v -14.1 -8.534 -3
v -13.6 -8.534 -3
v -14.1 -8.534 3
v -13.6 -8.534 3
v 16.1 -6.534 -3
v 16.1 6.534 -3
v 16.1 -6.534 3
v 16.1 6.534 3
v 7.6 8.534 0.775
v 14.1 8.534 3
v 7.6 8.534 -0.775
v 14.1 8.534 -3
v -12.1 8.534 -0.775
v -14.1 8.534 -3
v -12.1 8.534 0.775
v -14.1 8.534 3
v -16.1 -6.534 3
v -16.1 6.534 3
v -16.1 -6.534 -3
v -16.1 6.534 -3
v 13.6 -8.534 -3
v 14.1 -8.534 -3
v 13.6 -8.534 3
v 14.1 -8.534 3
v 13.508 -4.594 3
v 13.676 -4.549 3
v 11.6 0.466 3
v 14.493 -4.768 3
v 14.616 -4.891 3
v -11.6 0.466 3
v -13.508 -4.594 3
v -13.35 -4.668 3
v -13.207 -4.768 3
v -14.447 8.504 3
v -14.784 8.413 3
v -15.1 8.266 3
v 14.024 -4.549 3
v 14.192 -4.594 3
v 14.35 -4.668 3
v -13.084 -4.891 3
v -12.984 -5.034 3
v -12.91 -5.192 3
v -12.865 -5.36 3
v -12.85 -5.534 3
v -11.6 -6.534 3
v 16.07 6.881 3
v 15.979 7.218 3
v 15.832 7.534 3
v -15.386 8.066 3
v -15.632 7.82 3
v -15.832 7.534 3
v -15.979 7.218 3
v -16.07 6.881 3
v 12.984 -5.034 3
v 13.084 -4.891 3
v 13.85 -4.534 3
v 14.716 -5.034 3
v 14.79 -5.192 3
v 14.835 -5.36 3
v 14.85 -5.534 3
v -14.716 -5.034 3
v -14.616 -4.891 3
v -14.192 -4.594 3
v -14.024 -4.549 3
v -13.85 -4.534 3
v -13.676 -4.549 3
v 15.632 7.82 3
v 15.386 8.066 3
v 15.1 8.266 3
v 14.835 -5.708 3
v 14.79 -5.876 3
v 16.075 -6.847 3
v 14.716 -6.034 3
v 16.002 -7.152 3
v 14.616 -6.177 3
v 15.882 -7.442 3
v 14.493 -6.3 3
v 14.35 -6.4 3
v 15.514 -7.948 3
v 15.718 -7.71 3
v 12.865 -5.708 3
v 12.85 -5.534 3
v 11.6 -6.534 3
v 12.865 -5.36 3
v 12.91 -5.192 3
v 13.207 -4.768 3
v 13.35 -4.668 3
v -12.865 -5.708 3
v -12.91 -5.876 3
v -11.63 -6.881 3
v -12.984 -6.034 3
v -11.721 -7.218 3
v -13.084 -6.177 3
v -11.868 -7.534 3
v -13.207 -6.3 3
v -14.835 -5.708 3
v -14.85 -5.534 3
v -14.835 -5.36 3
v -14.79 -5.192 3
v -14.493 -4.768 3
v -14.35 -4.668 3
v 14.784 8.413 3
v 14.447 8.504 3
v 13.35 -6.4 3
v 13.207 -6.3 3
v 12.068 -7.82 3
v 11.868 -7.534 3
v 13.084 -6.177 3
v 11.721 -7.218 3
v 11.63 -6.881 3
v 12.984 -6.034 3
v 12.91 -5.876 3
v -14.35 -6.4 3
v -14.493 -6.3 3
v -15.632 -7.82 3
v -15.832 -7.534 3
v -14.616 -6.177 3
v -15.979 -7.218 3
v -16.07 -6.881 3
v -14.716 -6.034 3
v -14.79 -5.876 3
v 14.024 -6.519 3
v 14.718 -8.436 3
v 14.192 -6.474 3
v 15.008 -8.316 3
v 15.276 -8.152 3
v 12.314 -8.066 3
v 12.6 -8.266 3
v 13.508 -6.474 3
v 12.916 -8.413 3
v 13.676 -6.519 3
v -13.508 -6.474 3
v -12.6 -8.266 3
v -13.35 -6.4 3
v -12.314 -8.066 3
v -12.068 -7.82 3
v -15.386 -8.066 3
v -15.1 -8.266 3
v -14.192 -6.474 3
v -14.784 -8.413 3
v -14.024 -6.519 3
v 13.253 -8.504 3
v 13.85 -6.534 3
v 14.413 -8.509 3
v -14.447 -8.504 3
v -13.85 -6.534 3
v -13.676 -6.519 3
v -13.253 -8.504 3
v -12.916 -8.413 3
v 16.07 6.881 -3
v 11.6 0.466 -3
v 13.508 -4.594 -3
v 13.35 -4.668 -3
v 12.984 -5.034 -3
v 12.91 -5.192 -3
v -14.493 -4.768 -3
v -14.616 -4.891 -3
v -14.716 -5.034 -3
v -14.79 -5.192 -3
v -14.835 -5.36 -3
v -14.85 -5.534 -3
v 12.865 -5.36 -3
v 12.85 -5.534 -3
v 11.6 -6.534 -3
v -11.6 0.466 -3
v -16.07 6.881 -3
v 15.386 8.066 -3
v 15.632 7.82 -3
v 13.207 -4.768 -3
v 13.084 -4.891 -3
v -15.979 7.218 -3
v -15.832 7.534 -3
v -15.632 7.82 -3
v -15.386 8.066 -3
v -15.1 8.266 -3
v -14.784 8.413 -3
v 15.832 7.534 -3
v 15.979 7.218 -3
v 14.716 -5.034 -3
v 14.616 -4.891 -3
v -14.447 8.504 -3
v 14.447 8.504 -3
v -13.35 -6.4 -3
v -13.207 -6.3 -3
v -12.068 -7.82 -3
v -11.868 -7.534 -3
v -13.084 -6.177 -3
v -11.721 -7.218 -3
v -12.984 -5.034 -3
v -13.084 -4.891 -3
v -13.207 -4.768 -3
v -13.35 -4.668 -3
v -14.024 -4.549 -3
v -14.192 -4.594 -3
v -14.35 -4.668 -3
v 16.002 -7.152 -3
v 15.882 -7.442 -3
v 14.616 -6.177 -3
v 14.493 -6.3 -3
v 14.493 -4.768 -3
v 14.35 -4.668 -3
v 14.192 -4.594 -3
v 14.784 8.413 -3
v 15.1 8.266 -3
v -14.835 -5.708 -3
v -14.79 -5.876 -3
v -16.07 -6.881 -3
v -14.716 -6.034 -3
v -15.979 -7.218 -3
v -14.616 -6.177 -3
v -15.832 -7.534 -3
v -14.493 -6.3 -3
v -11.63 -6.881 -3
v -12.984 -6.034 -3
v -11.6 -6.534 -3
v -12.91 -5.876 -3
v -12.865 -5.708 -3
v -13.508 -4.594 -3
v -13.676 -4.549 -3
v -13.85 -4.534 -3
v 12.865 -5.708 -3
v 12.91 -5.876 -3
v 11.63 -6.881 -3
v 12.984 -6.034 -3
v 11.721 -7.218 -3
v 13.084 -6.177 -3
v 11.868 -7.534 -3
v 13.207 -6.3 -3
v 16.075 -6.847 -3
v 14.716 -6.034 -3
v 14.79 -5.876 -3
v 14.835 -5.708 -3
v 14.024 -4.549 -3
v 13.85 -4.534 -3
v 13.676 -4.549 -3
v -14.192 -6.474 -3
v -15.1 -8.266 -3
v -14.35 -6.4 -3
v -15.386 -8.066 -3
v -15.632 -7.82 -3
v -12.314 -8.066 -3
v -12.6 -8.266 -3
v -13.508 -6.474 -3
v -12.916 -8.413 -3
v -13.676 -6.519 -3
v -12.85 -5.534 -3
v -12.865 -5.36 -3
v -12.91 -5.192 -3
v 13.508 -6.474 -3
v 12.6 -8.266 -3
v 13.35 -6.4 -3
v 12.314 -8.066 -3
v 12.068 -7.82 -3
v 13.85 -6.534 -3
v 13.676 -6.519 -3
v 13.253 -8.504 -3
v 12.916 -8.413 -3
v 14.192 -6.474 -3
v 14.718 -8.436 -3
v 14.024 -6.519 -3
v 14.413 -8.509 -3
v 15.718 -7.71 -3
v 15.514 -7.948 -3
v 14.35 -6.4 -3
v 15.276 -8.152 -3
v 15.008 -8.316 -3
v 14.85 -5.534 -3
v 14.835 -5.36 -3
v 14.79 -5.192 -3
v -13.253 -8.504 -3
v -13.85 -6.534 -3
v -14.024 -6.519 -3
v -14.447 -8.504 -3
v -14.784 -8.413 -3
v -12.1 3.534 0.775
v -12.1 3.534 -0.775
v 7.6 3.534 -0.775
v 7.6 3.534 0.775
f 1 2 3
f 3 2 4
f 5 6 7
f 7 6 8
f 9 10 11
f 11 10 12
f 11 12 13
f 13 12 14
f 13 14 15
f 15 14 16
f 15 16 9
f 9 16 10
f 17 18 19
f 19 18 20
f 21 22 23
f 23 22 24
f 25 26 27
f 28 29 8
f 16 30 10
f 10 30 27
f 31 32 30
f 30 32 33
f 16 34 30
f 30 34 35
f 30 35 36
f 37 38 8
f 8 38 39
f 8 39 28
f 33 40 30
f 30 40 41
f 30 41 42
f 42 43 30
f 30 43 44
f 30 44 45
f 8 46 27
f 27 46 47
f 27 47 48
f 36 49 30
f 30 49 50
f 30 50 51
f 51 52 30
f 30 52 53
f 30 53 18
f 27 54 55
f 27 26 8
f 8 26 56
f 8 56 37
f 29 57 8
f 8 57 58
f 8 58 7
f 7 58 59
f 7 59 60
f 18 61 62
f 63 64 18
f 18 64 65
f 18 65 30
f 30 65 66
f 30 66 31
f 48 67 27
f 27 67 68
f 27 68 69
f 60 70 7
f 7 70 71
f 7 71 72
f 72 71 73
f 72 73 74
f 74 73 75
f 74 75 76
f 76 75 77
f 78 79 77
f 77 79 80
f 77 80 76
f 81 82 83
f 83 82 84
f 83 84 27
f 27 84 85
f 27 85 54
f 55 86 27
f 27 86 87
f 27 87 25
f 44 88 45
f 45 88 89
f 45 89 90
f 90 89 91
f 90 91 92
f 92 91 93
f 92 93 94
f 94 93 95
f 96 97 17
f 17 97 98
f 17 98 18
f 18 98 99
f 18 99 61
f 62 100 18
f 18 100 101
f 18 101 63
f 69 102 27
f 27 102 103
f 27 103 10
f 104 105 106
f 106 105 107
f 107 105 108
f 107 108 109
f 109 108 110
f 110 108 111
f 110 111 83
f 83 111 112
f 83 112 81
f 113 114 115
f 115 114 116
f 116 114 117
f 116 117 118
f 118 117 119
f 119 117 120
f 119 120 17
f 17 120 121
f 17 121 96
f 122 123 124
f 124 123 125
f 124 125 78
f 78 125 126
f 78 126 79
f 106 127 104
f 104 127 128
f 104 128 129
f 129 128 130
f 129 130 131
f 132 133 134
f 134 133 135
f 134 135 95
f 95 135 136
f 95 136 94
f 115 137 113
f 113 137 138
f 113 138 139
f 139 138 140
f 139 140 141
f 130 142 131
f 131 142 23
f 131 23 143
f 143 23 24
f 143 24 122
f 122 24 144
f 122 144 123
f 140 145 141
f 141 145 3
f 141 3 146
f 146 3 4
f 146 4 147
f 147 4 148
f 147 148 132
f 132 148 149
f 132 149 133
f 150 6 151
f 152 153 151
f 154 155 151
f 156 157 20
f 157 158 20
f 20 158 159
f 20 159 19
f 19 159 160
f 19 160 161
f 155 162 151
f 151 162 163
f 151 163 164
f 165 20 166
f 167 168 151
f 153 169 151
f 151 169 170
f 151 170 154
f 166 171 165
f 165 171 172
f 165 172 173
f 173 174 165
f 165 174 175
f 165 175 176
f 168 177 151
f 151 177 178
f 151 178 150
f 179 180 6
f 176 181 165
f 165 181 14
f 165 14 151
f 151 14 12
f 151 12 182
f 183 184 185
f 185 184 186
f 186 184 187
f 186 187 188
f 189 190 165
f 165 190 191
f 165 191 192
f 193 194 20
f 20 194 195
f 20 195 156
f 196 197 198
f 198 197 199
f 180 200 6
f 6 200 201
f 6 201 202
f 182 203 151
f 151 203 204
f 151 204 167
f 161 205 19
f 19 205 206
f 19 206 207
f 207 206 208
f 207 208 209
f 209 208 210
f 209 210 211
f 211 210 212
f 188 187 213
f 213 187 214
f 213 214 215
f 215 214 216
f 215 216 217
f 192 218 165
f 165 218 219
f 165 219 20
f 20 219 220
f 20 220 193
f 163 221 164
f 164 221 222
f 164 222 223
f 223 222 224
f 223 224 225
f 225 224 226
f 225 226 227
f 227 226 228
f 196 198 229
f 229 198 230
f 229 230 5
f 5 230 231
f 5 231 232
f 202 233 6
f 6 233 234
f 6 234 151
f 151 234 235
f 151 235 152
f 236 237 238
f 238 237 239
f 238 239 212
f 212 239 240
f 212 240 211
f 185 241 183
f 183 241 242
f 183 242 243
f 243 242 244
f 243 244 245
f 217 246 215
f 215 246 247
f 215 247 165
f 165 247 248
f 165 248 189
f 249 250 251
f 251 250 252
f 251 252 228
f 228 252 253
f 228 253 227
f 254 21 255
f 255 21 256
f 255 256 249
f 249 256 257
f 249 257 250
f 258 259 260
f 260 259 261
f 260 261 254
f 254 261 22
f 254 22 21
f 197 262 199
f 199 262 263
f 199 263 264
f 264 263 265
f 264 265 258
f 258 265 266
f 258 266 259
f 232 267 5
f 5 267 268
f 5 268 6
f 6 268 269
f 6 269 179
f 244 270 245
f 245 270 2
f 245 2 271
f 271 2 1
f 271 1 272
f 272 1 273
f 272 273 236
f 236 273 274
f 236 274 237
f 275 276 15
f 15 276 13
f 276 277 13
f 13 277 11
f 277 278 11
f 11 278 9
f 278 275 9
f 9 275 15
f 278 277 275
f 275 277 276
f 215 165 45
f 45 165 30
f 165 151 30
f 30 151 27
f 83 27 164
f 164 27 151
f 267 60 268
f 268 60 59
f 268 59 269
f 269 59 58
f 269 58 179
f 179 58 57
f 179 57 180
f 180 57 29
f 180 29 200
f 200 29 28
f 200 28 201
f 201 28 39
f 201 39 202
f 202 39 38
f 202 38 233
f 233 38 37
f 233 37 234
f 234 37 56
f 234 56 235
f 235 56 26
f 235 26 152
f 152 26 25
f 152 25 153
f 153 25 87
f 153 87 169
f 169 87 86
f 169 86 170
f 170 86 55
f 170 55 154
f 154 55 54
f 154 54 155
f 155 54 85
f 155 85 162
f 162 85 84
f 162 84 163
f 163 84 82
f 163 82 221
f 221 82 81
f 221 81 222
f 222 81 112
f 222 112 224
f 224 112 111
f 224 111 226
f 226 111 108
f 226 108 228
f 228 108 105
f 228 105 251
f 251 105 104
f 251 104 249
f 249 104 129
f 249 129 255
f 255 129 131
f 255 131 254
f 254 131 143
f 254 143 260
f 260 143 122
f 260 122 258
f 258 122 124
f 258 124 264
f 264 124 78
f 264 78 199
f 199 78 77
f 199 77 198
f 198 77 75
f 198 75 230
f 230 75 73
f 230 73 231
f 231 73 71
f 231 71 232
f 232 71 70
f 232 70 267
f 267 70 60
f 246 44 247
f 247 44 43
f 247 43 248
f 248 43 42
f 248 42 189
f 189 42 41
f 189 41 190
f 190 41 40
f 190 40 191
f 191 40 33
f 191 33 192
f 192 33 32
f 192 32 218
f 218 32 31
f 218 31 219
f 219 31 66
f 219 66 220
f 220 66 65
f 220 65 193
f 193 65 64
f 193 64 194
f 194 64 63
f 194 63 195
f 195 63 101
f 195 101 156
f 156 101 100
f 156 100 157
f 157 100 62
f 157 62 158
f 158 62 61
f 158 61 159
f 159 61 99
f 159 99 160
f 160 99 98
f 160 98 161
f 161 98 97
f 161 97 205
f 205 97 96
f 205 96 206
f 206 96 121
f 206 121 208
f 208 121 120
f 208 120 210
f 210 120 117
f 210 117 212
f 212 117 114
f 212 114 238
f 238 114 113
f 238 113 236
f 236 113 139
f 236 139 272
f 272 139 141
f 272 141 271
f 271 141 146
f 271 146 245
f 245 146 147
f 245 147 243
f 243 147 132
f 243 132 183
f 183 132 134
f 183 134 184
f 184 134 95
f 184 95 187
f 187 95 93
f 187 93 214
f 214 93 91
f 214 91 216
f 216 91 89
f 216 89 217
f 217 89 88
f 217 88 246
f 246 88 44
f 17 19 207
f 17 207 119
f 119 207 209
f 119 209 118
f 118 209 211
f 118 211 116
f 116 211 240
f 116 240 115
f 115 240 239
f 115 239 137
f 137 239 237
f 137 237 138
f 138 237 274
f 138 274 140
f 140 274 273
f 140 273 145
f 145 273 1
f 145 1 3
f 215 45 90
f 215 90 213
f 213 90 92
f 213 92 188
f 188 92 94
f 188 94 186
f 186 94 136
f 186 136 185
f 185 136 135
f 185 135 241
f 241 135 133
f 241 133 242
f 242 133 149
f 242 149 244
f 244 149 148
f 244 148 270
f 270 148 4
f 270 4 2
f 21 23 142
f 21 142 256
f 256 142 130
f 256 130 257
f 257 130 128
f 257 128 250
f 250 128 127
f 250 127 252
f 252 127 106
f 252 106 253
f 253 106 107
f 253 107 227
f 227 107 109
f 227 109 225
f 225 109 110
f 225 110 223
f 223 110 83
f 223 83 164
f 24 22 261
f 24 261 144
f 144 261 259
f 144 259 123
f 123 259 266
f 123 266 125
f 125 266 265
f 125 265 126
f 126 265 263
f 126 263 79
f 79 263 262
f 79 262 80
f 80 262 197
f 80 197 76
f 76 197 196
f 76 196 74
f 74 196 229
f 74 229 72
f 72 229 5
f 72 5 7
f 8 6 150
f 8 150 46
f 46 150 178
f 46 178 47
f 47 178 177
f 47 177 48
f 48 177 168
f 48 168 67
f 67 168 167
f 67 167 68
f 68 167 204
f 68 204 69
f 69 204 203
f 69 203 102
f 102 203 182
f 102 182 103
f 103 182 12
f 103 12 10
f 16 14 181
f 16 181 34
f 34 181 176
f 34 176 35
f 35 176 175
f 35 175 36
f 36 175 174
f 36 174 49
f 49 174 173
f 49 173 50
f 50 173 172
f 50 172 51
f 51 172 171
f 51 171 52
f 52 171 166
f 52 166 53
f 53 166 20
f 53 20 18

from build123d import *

# Parameters (mm, degrees)
SKETCH2_W           = 32.2
SKETCH2_H           = 17.068
BOSS_EXTRUDE1_DEPTH = 3
SKETCH3_W           = 19.7
SKETCH3_H           = 1.55
CUT_EXTRUDE1_DEPTH  = 5
SKETCH4_W           = 23.2
SKETCH4_H           = 9
CUT_EXTRUDE2_DEPTH  = 20.18434664
SKETCH5_R           = 1
CUT_EXTRUDE3_DEPTH  = 20.18434664
FILLET1_R           = 2


with BuildPart() as part:
    # Sketch2 → Boss-Extrude1 (new, symmetric)
    with BuildSketch(Plane.XY):
        Rectangle(SKETCH2_W, SKETCH2_H)
    extrude(amount=BOSS_EXTRUDE1_DEPTH, both=True)

    # Sketch3 → Cut-Extrude1 (cut)
    with BuildSketch(Plane(origin=(0, 8.534, 0), x_dir=(1, 0, 0), z_dir=(0, 1, 0))):
        with Locations((-2.25, 0)):
            Rectangle(SKETCH3_W, SKETCH3_H)
    extrude(amount=-CUT_EXTRUDE1_DEPTH, mode=Mode.SUBTRACT)

    # Sketch4 → Cut-Extrude2 (cut, through all)
    with BuildSketch(Plane.XY.offset(3)):
        with Locations((0, -4.034)):
            Rectangle(SKETCH4_W, SKETCH4_H)
    extrude(amount=-CUT_EXTRUDE2_DEPTH, mode=Mode.SUBTRACT)

    # Sketch5 → Cut-Extrude3 (cut, through all)
    with BuildSketch(Plane.XY.offset(3)):
        with Locations((-13.85, -5.534)):
            Circle(SKETCH5_R)
        with Locations((13.85, -5.534)):
            Circle(SKETCH5_R)
    extrude(amount=-CUT_EXTRUDE3_DEPTH, mode=Mode.SUBTRACT)

    # Fillet1
    fillet1_edges = [part.edges().sort_by_distance(p)[0] for p in [
        (-11.6, -8.534, 0),
        (11.6, -8.534, 0),
        (16.1, -8.534, 0),
        (-16.1, -8.534, 0),
        (-16.1, 8.534, 0),
        (16.1, 8.534, 0),
    ]]
    fillet(fillet1_edges, radius=FILLET1_R)


solid = part.part
